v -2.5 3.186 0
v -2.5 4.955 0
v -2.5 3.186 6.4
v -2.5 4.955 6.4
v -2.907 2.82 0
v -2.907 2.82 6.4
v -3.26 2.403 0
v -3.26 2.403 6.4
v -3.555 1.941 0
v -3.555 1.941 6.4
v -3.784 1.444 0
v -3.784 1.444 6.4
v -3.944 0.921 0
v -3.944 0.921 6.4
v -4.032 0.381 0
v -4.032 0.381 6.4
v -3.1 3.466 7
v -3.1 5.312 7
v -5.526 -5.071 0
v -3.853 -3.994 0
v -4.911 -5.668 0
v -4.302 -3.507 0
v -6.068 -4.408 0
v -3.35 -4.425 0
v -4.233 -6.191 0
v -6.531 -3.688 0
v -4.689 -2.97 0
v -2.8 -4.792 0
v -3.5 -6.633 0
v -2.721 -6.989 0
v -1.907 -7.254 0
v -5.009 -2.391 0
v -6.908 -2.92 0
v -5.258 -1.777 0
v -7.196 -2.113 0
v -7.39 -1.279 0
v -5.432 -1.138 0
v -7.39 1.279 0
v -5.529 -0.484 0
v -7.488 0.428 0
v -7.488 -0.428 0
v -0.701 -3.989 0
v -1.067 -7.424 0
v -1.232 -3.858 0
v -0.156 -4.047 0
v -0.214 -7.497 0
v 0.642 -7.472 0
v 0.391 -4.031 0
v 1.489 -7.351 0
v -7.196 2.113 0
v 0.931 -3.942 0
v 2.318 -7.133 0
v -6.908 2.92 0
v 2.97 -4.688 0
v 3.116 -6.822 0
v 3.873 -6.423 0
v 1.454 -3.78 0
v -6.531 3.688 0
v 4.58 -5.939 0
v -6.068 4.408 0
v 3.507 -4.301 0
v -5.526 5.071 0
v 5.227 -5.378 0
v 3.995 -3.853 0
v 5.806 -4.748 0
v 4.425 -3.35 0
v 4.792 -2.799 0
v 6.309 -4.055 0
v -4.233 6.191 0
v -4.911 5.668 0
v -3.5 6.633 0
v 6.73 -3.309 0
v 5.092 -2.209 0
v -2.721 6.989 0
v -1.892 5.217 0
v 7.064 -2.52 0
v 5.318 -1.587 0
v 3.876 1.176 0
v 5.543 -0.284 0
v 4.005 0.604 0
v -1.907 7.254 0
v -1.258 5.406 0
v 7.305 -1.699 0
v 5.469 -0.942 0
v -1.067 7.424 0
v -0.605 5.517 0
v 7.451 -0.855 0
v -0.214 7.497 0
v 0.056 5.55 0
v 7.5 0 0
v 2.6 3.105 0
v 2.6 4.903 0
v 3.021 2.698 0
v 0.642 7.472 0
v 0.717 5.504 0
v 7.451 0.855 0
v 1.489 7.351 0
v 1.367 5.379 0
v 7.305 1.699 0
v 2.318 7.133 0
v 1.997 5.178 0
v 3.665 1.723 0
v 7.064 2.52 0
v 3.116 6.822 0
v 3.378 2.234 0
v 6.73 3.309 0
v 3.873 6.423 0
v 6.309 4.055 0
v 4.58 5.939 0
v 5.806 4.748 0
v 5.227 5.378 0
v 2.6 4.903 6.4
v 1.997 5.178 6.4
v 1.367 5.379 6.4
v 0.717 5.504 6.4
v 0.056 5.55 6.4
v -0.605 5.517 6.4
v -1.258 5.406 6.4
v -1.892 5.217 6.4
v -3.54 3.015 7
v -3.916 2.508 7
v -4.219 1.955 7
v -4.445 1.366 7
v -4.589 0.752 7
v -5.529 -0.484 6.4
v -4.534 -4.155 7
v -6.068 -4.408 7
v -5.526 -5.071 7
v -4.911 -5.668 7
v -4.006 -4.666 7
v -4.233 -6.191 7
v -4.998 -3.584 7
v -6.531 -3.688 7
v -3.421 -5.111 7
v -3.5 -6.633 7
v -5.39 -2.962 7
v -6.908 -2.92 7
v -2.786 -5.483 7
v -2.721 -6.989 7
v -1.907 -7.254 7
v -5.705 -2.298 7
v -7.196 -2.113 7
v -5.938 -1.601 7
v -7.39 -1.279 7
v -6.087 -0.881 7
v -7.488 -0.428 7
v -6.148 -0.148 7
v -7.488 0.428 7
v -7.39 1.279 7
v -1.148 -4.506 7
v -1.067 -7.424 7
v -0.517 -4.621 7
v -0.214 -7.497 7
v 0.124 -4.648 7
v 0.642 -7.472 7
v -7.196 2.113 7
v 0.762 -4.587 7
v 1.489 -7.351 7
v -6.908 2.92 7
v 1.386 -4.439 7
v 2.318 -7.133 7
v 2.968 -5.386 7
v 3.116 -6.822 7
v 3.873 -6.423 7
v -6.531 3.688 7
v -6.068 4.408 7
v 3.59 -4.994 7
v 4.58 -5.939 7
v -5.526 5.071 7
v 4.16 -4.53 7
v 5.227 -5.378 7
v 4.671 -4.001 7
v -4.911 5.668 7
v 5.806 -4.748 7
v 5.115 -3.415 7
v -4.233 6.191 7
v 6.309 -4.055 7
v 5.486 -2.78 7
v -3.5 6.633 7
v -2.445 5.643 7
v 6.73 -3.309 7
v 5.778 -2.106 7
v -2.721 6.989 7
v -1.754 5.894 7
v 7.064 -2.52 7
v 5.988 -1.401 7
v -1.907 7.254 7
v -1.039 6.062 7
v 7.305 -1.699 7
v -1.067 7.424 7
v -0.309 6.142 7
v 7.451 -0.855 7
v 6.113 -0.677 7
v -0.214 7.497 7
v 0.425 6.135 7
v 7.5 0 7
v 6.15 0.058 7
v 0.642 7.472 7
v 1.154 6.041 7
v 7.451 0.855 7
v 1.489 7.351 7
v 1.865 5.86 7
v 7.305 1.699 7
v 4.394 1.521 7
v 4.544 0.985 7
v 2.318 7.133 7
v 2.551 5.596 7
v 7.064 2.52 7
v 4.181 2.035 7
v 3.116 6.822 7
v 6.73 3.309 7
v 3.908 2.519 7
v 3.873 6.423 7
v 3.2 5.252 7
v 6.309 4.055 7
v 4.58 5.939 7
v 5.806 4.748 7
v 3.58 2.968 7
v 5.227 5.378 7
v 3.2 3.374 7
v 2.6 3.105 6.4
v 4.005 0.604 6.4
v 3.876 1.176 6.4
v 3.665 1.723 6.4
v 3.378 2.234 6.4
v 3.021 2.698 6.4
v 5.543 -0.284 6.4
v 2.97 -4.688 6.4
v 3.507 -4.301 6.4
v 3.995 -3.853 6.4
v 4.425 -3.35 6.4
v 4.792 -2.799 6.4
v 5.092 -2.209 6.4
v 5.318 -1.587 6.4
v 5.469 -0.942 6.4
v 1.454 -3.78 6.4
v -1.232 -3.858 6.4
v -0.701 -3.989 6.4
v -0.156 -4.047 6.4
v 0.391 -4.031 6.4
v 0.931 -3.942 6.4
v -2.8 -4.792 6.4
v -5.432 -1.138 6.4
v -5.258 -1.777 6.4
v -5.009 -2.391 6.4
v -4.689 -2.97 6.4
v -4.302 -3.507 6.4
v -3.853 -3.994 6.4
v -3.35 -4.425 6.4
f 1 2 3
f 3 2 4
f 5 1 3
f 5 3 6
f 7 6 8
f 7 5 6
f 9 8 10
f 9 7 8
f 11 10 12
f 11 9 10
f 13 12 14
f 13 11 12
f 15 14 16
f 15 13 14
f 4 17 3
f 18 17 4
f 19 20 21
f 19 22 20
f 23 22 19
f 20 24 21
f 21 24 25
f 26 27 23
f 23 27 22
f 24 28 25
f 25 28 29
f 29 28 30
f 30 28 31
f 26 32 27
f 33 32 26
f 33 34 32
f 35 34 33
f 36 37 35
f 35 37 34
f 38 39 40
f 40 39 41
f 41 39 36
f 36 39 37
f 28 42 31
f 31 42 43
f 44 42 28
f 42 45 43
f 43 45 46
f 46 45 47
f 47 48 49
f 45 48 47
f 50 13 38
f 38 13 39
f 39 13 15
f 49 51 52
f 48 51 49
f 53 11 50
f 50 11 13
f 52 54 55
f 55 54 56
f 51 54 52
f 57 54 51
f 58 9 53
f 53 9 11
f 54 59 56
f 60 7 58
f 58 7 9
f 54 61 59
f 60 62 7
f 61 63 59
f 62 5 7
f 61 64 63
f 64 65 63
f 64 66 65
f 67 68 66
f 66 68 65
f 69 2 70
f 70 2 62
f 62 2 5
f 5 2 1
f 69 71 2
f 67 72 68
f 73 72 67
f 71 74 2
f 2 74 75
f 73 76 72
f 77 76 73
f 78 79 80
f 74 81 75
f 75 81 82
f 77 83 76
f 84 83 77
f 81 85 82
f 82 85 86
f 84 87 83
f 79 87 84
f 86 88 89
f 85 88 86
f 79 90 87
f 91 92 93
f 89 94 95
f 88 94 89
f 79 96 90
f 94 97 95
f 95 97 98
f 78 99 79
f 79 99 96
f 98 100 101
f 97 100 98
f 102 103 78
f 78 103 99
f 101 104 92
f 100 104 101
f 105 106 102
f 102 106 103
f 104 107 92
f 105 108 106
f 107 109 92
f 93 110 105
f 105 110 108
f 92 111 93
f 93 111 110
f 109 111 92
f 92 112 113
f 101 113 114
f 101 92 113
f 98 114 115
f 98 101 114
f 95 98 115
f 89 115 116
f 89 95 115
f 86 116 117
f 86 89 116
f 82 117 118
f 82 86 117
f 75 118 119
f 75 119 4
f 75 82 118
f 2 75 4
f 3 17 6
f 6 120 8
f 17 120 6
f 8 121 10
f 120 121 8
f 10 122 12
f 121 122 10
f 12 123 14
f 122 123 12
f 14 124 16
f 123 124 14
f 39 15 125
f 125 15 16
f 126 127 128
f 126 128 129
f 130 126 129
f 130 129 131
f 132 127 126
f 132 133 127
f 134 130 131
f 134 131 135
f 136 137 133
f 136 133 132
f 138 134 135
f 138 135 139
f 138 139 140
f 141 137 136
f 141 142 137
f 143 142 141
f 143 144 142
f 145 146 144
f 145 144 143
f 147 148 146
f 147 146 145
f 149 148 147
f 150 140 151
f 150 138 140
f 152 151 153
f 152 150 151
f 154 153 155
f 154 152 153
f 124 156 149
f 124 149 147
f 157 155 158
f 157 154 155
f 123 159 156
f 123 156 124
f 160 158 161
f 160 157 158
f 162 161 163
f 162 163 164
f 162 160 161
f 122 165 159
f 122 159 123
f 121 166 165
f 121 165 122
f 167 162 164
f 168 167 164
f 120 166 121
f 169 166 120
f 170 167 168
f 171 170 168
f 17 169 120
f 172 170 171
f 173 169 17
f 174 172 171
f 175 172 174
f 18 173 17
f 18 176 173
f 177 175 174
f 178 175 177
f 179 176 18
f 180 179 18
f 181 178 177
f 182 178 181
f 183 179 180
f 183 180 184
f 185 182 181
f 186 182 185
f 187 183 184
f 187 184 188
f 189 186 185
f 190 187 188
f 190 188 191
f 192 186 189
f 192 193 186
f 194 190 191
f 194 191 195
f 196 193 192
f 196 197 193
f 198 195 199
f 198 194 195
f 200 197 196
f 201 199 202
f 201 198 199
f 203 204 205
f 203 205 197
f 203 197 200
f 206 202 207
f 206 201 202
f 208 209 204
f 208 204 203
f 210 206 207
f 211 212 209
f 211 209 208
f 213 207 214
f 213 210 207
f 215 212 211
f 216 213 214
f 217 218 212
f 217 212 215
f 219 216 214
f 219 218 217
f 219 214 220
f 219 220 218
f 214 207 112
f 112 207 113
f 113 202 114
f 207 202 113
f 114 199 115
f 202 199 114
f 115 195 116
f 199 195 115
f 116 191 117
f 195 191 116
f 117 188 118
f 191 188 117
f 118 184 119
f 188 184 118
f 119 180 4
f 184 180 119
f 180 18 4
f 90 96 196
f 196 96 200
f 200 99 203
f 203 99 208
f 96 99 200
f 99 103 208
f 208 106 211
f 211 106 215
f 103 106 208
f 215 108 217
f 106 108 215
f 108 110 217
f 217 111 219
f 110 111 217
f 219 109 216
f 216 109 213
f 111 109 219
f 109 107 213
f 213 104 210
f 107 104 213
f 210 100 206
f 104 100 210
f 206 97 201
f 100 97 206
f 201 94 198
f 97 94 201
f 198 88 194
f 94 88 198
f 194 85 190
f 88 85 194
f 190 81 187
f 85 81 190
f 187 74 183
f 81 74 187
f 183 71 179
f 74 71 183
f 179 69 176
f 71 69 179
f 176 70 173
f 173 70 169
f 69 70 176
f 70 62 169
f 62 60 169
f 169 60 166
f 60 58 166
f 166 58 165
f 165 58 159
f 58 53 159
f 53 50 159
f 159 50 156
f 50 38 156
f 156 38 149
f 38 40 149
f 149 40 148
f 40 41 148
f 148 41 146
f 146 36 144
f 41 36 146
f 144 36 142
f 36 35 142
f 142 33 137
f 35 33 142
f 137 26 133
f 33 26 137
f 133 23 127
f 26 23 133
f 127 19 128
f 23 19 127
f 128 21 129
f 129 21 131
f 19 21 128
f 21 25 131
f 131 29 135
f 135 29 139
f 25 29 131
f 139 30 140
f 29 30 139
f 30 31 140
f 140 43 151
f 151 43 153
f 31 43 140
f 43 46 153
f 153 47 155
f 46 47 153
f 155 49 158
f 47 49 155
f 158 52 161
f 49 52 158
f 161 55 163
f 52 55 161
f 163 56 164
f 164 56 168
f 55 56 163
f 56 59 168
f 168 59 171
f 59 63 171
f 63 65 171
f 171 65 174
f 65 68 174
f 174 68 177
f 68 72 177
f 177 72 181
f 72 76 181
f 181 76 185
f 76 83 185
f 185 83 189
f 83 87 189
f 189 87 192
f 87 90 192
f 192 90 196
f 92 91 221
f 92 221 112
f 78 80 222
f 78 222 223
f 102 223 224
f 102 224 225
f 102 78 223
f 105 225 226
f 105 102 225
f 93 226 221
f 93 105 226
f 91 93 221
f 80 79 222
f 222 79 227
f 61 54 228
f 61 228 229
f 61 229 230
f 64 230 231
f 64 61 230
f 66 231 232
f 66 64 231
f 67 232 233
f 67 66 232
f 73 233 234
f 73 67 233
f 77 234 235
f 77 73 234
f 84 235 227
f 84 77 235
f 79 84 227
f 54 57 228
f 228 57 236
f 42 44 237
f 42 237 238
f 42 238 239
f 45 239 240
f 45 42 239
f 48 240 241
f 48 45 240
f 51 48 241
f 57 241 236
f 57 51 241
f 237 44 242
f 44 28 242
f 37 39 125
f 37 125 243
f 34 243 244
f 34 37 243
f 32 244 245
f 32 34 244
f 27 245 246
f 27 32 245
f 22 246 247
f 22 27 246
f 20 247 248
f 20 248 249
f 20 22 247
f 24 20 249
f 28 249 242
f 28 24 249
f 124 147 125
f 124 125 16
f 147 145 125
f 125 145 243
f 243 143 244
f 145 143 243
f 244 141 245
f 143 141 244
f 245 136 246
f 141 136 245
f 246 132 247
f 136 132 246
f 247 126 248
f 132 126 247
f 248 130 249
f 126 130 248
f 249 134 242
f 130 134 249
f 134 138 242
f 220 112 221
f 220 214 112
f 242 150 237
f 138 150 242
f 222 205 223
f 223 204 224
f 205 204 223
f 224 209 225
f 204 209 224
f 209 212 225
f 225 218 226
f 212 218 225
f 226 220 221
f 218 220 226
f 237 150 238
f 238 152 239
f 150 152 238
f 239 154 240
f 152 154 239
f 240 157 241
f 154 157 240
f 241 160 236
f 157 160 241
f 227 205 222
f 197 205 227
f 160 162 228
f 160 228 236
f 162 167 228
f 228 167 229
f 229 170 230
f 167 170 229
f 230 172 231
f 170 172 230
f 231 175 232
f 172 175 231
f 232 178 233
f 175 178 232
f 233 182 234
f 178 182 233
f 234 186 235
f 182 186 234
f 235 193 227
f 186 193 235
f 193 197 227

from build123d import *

# Parameters (mm, degrees)
SKETCH_R     = 7.5
PAD_DEPTH    = 7
CHAMFER_SIZE = 0.6


with BuildPart() as part:
    # Sketch → Pad (new body)
    with BuildSketch(Plane.XY):
        Circle(SKETCH_R)
        with BuildLine():
            ThreePointArc((-2.5, 3.186299), (-3.554582, 1.940992), (-4.03208, 0.380567))
            Line((-5.528888, -0.483634), (-4.03208, 0.380567))
            ThreePointArc((-5.528888, -0.483634), (-4.688541, -2.969863), (-2.799824, -4.792023))
            Line((-1.232265, -3.857982), (-2.799824, -4.792023))
            ThreePointArc((-1.232265, -3.857982), (0.117665, -4.04829), (1.454262, -3.779897))
            Line((2.970351, -4.688232), (1.454262, -3.779897))
            ThreePointArc((2.970351, -4.688232), (4.792314, -2.799326), (5.542704, -0.284484))
            Line((4.004681, 0.604177), (5.542704, -0.284484))
            ThreePointArc((4.004681, 0.604177), (3.531103, 1.983384), (2.599739, 3.105456))
            Line((2.599739, 3.105456), (2.599739, 4.903454))
            ThreePointArc((2.599739, 4.903454), (0.056147, 5.549716), (-2.5, 4.955048))
            Line((-2.5, 3.186299), (-2.5, 4.955048))
        make_face(mode=Mode.SUBTRACT)
    extrude(amount=PAD_DEPTH)

    # Chamfer
    chamfer_edges = [part.edges().sort_by_distance(p)[0] for p in [
        (-3.554582, 1.940992, 7),
        (-4.780484, -0.051534, 7),
        (-4.688541, -2.969863, 7),
        (-2.016045, -4.325002, 7),
        (0.117665, -4.04829, 7),
        (2.212306, -4.234064, 7),
        (4.792314, -2.799326, 7),
        (4.773693, 0.159847, 7),
        (3.531103, 1.983384, 7),
        (2.599739, 4.004455, 7),
        (0.056147, 5.549716, 7),
        (-2.5, 4.070673, 7),
    ]]
    chamfer(chamfer_edges, length=CHAMFER_SIZE)


solid = part.part
